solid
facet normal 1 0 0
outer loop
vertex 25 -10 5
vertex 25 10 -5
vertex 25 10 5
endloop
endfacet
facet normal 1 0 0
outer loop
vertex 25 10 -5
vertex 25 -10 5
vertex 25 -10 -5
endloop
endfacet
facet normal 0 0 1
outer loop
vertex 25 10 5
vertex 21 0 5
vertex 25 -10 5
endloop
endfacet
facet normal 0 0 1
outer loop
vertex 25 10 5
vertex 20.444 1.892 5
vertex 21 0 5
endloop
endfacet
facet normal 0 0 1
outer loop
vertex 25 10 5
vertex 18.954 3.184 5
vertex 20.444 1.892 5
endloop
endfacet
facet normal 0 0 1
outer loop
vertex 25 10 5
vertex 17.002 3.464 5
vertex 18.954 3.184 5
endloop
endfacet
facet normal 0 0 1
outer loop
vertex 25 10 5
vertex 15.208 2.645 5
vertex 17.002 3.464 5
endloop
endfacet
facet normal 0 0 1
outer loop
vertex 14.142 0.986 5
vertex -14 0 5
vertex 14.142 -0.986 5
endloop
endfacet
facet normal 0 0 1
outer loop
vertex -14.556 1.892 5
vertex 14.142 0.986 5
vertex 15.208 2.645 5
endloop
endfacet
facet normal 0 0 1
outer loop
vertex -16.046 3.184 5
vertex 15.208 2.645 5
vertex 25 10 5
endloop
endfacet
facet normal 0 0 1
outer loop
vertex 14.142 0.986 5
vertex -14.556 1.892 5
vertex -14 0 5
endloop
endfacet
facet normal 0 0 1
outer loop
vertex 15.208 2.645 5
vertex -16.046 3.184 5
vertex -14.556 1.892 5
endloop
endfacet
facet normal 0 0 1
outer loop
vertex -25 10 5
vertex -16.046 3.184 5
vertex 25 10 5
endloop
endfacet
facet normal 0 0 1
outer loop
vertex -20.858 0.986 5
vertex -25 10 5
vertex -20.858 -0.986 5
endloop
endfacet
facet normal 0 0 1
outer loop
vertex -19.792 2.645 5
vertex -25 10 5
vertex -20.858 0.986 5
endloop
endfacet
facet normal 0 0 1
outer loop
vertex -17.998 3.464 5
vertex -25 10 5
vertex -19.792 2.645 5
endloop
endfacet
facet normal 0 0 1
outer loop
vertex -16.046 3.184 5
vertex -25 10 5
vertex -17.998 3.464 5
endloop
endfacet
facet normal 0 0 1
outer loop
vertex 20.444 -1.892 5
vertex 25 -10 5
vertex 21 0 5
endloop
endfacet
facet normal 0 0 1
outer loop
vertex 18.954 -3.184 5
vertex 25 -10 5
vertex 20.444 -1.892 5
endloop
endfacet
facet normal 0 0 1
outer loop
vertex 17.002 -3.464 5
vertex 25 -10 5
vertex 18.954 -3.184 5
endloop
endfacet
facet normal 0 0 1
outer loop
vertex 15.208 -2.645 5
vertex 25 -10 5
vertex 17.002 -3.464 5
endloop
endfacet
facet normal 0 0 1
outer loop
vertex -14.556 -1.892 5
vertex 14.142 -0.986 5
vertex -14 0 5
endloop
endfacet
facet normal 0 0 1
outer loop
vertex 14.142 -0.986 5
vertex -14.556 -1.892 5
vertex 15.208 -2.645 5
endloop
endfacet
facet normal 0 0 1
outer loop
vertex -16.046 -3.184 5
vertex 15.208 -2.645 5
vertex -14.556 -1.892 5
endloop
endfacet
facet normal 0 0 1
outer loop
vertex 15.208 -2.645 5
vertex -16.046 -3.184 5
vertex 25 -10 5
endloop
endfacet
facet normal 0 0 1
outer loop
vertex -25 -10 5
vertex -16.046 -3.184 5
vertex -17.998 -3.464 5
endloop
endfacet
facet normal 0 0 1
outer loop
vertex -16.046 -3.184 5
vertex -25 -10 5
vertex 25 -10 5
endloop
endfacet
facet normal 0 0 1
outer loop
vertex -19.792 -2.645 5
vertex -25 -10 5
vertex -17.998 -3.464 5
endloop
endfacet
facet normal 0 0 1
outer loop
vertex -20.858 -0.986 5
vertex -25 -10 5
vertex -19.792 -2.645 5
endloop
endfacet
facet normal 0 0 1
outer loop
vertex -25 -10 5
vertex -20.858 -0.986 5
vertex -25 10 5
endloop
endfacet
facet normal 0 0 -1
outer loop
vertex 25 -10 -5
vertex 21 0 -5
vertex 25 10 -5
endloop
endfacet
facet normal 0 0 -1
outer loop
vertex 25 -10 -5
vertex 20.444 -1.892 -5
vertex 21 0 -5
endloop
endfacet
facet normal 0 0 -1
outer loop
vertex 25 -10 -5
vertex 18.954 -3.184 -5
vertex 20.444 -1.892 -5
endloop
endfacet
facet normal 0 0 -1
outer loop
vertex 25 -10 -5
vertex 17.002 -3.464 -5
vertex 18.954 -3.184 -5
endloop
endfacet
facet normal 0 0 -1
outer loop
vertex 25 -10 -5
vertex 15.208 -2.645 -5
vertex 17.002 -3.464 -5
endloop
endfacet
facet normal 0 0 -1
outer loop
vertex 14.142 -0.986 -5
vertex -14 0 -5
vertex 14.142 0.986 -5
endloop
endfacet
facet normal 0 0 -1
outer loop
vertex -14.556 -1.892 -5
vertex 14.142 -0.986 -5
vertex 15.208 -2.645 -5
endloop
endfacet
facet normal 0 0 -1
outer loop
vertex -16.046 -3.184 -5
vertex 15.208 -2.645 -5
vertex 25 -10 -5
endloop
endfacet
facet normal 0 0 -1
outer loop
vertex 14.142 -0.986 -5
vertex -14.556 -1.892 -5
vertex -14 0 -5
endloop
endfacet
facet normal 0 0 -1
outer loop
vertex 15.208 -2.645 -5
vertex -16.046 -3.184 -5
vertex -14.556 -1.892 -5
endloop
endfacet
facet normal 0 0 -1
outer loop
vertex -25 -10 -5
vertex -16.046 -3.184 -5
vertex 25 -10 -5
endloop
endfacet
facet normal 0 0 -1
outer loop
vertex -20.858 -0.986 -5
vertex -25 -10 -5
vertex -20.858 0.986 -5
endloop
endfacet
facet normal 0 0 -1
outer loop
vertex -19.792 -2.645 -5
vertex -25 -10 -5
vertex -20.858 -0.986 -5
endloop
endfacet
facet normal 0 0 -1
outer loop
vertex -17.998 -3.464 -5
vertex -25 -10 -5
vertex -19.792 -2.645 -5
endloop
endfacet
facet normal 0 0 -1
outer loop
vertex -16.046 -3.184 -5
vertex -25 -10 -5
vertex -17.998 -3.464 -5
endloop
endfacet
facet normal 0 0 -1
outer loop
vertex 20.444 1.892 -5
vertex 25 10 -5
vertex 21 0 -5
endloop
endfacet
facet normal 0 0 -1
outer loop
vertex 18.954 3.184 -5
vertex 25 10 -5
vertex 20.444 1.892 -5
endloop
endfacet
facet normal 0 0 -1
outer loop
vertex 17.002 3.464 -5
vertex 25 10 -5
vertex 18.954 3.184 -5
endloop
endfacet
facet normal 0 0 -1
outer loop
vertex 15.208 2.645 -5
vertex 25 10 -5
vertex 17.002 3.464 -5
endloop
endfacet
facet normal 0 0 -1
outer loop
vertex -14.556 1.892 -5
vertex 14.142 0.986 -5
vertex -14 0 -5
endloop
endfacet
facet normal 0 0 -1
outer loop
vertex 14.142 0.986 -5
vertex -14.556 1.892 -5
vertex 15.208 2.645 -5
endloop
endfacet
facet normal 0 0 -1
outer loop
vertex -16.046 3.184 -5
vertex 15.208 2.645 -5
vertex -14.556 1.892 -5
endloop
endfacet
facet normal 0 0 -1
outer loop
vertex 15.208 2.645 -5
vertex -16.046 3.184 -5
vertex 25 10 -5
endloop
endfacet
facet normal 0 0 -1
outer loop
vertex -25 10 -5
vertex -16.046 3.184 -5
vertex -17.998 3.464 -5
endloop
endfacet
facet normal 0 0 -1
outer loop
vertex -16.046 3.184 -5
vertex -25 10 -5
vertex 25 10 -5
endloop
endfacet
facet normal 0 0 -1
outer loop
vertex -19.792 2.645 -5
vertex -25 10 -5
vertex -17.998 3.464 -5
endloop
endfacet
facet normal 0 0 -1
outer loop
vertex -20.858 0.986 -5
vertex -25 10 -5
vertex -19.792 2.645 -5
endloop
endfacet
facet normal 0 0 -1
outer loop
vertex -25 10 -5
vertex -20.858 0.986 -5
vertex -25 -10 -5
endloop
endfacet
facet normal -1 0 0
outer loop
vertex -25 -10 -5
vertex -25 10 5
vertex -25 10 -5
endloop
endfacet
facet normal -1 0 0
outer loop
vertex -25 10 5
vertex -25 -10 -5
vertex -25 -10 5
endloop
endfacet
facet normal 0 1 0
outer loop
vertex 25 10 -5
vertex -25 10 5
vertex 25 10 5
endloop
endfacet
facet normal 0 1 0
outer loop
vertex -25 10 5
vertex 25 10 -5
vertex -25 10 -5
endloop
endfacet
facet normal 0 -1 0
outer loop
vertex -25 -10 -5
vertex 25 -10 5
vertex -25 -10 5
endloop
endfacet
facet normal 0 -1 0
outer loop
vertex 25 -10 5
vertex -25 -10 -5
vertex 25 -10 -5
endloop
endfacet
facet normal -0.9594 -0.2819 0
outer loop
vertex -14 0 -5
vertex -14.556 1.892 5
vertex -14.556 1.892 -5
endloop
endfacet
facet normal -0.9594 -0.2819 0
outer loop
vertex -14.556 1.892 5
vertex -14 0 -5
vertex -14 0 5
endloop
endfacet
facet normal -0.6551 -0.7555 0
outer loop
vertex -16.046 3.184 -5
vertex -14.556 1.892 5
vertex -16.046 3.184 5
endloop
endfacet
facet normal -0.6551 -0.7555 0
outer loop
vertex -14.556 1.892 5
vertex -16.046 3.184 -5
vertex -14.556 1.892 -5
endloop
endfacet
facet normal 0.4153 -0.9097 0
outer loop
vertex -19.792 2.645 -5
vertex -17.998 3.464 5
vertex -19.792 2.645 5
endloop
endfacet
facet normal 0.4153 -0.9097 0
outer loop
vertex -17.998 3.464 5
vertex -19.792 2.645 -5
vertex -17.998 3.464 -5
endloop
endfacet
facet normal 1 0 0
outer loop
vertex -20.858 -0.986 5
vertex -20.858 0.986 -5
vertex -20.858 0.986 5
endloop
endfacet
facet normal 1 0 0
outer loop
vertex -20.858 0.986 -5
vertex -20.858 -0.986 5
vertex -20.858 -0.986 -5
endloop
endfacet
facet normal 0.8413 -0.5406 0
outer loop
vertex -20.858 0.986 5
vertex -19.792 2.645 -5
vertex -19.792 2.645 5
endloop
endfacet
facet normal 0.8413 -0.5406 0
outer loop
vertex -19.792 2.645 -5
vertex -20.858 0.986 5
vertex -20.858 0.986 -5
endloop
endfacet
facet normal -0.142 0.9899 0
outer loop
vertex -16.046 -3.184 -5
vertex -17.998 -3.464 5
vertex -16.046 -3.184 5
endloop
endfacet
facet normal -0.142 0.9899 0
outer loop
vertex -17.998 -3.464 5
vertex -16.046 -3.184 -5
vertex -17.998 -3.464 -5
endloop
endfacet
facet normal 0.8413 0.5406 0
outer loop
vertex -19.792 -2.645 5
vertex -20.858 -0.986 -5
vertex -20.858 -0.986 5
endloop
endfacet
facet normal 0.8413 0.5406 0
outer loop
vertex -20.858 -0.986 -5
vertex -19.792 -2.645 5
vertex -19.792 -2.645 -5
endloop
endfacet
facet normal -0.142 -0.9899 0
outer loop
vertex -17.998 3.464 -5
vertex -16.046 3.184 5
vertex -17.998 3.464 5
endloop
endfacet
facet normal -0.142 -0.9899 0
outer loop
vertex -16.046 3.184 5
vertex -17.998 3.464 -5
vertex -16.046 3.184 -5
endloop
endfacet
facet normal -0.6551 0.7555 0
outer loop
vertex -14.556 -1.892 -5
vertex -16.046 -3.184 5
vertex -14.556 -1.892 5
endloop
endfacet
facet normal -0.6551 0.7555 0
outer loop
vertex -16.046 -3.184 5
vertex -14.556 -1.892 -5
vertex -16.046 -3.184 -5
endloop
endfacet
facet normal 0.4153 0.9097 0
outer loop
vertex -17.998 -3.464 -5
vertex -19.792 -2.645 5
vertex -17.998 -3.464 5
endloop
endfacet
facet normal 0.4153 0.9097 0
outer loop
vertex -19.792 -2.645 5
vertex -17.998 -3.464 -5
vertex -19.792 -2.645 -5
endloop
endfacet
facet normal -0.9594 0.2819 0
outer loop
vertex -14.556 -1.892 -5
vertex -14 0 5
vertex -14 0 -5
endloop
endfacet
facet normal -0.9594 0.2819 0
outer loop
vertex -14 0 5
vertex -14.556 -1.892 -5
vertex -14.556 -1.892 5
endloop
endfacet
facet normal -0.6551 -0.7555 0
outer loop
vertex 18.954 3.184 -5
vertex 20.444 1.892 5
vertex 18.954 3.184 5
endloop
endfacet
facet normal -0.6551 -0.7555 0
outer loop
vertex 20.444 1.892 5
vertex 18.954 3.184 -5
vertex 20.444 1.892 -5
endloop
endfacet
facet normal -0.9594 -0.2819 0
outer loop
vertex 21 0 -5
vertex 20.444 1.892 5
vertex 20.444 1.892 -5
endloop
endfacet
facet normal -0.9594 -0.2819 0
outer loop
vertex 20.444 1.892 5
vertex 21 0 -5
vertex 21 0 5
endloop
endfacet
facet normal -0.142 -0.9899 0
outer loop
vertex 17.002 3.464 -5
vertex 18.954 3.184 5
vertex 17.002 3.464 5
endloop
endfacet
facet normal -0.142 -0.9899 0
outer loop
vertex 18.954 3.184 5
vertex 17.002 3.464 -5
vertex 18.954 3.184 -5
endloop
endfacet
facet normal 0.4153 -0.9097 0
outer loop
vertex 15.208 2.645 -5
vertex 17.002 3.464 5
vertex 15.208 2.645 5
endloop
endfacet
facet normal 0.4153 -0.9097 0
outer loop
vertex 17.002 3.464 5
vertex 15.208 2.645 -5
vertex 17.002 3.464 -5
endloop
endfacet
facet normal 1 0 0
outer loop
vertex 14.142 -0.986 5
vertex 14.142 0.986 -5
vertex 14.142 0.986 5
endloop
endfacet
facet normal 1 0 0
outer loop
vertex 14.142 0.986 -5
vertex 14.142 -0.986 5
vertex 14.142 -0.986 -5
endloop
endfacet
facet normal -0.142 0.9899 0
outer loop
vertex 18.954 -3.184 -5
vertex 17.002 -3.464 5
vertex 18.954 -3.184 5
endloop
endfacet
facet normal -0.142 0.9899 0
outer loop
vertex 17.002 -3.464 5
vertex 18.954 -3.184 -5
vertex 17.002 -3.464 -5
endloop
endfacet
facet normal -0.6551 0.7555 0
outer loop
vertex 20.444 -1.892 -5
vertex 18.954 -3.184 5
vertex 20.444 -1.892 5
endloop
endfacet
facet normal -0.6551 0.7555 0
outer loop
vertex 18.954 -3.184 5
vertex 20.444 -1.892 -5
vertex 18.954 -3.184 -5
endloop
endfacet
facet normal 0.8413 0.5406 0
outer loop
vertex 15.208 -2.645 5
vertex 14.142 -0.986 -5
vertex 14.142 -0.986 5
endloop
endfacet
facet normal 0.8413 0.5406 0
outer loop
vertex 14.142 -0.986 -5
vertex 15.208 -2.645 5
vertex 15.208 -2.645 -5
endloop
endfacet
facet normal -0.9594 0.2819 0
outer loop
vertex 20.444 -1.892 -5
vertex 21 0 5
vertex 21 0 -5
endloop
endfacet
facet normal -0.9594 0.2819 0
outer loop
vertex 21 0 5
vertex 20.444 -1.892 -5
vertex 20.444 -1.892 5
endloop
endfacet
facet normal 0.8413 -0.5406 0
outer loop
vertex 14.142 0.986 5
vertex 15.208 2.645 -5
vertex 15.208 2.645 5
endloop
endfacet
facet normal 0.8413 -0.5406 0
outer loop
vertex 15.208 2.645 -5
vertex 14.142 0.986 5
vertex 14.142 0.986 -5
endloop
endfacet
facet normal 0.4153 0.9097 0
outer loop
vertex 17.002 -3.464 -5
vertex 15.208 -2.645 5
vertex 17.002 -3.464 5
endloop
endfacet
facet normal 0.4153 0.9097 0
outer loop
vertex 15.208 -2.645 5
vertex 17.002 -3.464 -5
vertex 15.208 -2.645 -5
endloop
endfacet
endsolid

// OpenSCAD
// Dimensions for the rectangular blocks
block_length = 50;  // length of block
block_width = 20;   // width of block
block_height = 10;  // height of block
hole_diameter = 7;  // slightly increased diameter of holes
hole_spacing = 35;  // adjusted distance to move holes towards one end

module rectangular_block_with_holes() {
    // Create the block
    difference() {
        // Main block
        cube([block_length, block_width, block_height], center = true);

        // Holes in the block
        translate([-hole_spacing / 2, 0, 0])
            cylinder(h = block_height + 2, r = hole_diameter / 2, center = true);

        translate([hole_spacing / 2, 0, 0])
            cylinder(h = block_height + 2, r = hole_diameter / 2, center = true);
    }
}

// Single block for the original model
rectangular_block_with_holes();
